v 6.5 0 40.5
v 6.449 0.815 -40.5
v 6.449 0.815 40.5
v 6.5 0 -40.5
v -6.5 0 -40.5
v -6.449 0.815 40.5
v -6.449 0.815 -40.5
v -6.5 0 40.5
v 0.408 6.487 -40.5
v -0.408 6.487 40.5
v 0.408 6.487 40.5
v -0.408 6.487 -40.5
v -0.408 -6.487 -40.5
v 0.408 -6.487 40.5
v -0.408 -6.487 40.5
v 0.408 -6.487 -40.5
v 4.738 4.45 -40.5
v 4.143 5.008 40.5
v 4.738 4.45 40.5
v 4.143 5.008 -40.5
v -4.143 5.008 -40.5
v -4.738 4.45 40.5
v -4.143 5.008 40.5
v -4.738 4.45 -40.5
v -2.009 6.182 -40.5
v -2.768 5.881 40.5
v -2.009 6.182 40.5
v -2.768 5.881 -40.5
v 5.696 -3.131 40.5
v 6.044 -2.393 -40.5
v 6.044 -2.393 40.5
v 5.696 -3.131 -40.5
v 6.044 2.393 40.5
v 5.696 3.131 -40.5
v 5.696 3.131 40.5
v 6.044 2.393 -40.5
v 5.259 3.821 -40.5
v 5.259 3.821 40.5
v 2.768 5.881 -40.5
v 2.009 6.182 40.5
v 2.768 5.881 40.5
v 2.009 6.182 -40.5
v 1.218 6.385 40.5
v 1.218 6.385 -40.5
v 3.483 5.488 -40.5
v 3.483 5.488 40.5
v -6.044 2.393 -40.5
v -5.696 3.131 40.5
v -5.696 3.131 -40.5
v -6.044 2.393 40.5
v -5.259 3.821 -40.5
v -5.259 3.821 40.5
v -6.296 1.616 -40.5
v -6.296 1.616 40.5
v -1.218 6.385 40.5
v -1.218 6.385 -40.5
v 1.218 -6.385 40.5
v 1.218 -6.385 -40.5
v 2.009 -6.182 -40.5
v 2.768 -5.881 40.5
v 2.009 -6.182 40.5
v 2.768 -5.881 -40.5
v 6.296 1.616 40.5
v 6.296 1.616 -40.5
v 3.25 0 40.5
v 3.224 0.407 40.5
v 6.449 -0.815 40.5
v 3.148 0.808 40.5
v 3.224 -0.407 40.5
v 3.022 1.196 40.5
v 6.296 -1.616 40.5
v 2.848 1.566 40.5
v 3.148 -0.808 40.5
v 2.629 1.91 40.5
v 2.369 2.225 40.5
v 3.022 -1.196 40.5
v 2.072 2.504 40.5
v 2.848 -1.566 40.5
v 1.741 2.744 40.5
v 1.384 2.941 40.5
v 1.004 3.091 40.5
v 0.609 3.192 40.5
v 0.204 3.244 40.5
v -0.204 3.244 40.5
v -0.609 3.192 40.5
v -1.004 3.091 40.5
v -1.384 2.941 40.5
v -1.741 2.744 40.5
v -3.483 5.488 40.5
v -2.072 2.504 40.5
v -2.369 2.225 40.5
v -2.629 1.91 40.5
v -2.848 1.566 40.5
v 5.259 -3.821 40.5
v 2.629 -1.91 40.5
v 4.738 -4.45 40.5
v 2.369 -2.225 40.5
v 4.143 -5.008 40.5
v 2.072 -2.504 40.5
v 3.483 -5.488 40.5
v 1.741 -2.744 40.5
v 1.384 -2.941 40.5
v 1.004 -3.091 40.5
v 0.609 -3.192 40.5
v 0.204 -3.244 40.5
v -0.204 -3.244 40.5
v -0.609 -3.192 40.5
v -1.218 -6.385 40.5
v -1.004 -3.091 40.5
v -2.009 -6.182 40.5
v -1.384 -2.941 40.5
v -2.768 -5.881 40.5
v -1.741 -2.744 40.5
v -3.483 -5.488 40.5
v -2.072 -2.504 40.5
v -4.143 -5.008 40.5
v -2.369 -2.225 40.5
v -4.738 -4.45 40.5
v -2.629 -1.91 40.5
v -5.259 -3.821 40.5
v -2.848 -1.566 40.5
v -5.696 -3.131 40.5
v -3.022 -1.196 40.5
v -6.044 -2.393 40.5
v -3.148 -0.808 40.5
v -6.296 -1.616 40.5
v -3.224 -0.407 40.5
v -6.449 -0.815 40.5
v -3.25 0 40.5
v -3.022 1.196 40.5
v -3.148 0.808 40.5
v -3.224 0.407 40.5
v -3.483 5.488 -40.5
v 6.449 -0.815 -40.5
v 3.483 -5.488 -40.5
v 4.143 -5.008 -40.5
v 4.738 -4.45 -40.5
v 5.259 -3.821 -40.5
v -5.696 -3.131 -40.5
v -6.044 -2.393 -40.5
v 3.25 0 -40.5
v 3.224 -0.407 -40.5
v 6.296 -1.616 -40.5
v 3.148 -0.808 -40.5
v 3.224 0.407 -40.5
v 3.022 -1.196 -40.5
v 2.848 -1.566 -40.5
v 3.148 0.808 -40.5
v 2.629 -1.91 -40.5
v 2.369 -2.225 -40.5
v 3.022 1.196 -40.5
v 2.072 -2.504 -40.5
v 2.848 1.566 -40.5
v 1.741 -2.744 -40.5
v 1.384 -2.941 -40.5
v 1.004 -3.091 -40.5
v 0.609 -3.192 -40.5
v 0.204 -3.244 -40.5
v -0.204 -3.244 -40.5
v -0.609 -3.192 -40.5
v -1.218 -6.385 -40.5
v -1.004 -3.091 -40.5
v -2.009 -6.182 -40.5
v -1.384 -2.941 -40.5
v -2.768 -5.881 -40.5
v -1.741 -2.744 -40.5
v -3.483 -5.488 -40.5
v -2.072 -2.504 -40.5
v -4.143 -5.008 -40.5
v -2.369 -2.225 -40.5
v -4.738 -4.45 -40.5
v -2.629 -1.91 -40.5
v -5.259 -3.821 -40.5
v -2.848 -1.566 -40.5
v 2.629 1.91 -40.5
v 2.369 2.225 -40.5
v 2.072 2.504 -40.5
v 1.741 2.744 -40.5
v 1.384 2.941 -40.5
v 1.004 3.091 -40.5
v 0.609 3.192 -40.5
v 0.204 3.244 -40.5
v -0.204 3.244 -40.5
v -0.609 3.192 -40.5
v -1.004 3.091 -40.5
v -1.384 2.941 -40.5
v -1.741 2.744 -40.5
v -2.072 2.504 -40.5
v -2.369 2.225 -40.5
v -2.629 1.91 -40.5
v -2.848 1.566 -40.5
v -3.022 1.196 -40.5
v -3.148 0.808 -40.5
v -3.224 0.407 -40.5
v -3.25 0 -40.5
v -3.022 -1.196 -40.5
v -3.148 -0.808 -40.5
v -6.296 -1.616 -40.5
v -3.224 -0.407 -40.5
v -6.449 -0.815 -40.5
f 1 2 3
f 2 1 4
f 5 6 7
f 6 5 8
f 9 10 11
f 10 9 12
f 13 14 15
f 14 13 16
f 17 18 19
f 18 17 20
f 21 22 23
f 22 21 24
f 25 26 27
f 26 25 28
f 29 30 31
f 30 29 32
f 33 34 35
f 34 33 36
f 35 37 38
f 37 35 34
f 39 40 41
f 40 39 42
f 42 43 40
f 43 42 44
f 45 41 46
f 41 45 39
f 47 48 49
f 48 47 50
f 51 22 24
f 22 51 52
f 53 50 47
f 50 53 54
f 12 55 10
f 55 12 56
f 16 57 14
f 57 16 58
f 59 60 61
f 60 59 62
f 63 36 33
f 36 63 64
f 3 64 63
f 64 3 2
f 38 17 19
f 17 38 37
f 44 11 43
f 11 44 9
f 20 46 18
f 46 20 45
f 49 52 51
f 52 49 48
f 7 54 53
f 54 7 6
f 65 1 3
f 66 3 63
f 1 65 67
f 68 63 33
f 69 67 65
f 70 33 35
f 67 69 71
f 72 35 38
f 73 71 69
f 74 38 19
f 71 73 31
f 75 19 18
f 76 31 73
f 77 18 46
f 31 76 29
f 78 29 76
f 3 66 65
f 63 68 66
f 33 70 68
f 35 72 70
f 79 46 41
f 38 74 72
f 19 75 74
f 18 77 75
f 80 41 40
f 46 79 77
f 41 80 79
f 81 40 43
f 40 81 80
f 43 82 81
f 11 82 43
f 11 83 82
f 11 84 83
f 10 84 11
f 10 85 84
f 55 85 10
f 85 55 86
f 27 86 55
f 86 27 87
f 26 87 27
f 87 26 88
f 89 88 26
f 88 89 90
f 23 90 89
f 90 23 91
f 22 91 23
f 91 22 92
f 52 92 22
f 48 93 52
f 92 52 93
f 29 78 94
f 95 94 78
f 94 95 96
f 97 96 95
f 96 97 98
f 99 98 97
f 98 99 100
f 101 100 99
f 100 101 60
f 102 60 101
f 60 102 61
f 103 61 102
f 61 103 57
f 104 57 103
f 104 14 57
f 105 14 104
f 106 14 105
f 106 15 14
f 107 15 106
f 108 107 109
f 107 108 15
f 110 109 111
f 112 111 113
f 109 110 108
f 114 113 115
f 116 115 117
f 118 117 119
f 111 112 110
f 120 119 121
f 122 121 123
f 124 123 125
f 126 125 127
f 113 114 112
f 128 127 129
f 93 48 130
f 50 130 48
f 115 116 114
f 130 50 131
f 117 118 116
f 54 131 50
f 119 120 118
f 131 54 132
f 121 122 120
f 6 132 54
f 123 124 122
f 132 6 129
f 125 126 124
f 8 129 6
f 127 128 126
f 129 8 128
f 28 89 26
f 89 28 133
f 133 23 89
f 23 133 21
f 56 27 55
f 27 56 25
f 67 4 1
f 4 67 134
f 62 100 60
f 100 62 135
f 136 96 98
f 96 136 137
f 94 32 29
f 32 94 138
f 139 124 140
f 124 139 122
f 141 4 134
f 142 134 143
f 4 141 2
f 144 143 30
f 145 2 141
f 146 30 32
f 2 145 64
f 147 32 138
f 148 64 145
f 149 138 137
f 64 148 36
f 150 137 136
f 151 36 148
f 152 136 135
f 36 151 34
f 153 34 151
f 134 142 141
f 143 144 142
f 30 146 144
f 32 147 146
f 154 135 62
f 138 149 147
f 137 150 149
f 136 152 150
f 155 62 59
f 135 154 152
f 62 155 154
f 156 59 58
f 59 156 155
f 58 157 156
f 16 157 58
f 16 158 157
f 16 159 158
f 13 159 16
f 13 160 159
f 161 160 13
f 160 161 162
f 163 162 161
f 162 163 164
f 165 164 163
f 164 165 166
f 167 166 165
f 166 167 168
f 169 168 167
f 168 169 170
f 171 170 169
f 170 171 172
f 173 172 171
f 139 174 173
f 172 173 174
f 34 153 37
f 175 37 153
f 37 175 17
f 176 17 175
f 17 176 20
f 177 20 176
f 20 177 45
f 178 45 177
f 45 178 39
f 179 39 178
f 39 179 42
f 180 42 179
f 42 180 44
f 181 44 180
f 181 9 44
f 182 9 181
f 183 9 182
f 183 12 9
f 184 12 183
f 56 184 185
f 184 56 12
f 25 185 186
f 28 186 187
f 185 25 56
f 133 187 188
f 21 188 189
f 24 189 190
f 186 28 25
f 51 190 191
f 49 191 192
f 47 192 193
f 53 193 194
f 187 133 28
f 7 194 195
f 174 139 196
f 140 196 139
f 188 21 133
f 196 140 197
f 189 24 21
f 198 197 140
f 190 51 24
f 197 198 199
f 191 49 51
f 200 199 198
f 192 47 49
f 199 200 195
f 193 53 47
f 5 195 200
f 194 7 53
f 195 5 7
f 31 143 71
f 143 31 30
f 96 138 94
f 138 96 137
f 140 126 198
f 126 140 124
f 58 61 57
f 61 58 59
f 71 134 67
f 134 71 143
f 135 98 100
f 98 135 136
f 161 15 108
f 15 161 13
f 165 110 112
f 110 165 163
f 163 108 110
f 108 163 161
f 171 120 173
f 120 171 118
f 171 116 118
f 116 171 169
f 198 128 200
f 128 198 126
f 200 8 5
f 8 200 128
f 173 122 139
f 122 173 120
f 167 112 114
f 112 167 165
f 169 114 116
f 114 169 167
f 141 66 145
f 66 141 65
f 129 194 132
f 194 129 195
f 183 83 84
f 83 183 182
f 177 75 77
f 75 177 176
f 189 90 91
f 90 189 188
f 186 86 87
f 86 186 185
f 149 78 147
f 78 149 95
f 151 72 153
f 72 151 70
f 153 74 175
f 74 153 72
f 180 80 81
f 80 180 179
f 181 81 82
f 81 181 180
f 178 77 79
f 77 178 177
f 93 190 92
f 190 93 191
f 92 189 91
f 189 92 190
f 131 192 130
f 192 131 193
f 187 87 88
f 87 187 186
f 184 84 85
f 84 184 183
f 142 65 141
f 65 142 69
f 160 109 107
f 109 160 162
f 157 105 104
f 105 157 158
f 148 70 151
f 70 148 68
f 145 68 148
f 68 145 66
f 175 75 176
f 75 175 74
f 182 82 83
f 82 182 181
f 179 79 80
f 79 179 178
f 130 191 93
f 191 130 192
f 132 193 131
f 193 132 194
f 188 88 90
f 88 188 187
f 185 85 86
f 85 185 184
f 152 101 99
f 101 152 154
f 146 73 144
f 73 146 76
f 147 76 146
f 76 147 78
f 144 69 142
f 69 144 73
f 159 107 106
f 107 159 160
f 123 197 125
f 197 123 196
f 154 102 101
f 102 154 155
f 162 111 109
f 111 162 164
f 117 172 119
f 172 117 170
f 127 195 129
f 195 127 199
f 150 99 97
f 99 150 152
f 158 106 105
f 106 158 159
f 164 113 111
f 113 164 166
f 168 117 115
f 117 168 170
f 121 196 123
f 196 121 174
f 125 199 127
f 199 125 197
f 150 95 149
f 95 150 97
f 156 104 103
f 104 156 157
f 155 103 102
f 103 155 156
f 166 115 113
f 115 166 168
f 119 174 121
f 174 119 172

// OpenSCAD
$fn = 50;


difference() {
	union() {
		translate(v = [0, 0, -40.5000000000]) {
			cylinder(h = 81, r = 6.5000000000);
		}
	}
	union() {
		translate(v = [0, 0, -100.0000000000]) {
			cylinder(h = 200, r = 3.2500000000);
		}
	}
}
